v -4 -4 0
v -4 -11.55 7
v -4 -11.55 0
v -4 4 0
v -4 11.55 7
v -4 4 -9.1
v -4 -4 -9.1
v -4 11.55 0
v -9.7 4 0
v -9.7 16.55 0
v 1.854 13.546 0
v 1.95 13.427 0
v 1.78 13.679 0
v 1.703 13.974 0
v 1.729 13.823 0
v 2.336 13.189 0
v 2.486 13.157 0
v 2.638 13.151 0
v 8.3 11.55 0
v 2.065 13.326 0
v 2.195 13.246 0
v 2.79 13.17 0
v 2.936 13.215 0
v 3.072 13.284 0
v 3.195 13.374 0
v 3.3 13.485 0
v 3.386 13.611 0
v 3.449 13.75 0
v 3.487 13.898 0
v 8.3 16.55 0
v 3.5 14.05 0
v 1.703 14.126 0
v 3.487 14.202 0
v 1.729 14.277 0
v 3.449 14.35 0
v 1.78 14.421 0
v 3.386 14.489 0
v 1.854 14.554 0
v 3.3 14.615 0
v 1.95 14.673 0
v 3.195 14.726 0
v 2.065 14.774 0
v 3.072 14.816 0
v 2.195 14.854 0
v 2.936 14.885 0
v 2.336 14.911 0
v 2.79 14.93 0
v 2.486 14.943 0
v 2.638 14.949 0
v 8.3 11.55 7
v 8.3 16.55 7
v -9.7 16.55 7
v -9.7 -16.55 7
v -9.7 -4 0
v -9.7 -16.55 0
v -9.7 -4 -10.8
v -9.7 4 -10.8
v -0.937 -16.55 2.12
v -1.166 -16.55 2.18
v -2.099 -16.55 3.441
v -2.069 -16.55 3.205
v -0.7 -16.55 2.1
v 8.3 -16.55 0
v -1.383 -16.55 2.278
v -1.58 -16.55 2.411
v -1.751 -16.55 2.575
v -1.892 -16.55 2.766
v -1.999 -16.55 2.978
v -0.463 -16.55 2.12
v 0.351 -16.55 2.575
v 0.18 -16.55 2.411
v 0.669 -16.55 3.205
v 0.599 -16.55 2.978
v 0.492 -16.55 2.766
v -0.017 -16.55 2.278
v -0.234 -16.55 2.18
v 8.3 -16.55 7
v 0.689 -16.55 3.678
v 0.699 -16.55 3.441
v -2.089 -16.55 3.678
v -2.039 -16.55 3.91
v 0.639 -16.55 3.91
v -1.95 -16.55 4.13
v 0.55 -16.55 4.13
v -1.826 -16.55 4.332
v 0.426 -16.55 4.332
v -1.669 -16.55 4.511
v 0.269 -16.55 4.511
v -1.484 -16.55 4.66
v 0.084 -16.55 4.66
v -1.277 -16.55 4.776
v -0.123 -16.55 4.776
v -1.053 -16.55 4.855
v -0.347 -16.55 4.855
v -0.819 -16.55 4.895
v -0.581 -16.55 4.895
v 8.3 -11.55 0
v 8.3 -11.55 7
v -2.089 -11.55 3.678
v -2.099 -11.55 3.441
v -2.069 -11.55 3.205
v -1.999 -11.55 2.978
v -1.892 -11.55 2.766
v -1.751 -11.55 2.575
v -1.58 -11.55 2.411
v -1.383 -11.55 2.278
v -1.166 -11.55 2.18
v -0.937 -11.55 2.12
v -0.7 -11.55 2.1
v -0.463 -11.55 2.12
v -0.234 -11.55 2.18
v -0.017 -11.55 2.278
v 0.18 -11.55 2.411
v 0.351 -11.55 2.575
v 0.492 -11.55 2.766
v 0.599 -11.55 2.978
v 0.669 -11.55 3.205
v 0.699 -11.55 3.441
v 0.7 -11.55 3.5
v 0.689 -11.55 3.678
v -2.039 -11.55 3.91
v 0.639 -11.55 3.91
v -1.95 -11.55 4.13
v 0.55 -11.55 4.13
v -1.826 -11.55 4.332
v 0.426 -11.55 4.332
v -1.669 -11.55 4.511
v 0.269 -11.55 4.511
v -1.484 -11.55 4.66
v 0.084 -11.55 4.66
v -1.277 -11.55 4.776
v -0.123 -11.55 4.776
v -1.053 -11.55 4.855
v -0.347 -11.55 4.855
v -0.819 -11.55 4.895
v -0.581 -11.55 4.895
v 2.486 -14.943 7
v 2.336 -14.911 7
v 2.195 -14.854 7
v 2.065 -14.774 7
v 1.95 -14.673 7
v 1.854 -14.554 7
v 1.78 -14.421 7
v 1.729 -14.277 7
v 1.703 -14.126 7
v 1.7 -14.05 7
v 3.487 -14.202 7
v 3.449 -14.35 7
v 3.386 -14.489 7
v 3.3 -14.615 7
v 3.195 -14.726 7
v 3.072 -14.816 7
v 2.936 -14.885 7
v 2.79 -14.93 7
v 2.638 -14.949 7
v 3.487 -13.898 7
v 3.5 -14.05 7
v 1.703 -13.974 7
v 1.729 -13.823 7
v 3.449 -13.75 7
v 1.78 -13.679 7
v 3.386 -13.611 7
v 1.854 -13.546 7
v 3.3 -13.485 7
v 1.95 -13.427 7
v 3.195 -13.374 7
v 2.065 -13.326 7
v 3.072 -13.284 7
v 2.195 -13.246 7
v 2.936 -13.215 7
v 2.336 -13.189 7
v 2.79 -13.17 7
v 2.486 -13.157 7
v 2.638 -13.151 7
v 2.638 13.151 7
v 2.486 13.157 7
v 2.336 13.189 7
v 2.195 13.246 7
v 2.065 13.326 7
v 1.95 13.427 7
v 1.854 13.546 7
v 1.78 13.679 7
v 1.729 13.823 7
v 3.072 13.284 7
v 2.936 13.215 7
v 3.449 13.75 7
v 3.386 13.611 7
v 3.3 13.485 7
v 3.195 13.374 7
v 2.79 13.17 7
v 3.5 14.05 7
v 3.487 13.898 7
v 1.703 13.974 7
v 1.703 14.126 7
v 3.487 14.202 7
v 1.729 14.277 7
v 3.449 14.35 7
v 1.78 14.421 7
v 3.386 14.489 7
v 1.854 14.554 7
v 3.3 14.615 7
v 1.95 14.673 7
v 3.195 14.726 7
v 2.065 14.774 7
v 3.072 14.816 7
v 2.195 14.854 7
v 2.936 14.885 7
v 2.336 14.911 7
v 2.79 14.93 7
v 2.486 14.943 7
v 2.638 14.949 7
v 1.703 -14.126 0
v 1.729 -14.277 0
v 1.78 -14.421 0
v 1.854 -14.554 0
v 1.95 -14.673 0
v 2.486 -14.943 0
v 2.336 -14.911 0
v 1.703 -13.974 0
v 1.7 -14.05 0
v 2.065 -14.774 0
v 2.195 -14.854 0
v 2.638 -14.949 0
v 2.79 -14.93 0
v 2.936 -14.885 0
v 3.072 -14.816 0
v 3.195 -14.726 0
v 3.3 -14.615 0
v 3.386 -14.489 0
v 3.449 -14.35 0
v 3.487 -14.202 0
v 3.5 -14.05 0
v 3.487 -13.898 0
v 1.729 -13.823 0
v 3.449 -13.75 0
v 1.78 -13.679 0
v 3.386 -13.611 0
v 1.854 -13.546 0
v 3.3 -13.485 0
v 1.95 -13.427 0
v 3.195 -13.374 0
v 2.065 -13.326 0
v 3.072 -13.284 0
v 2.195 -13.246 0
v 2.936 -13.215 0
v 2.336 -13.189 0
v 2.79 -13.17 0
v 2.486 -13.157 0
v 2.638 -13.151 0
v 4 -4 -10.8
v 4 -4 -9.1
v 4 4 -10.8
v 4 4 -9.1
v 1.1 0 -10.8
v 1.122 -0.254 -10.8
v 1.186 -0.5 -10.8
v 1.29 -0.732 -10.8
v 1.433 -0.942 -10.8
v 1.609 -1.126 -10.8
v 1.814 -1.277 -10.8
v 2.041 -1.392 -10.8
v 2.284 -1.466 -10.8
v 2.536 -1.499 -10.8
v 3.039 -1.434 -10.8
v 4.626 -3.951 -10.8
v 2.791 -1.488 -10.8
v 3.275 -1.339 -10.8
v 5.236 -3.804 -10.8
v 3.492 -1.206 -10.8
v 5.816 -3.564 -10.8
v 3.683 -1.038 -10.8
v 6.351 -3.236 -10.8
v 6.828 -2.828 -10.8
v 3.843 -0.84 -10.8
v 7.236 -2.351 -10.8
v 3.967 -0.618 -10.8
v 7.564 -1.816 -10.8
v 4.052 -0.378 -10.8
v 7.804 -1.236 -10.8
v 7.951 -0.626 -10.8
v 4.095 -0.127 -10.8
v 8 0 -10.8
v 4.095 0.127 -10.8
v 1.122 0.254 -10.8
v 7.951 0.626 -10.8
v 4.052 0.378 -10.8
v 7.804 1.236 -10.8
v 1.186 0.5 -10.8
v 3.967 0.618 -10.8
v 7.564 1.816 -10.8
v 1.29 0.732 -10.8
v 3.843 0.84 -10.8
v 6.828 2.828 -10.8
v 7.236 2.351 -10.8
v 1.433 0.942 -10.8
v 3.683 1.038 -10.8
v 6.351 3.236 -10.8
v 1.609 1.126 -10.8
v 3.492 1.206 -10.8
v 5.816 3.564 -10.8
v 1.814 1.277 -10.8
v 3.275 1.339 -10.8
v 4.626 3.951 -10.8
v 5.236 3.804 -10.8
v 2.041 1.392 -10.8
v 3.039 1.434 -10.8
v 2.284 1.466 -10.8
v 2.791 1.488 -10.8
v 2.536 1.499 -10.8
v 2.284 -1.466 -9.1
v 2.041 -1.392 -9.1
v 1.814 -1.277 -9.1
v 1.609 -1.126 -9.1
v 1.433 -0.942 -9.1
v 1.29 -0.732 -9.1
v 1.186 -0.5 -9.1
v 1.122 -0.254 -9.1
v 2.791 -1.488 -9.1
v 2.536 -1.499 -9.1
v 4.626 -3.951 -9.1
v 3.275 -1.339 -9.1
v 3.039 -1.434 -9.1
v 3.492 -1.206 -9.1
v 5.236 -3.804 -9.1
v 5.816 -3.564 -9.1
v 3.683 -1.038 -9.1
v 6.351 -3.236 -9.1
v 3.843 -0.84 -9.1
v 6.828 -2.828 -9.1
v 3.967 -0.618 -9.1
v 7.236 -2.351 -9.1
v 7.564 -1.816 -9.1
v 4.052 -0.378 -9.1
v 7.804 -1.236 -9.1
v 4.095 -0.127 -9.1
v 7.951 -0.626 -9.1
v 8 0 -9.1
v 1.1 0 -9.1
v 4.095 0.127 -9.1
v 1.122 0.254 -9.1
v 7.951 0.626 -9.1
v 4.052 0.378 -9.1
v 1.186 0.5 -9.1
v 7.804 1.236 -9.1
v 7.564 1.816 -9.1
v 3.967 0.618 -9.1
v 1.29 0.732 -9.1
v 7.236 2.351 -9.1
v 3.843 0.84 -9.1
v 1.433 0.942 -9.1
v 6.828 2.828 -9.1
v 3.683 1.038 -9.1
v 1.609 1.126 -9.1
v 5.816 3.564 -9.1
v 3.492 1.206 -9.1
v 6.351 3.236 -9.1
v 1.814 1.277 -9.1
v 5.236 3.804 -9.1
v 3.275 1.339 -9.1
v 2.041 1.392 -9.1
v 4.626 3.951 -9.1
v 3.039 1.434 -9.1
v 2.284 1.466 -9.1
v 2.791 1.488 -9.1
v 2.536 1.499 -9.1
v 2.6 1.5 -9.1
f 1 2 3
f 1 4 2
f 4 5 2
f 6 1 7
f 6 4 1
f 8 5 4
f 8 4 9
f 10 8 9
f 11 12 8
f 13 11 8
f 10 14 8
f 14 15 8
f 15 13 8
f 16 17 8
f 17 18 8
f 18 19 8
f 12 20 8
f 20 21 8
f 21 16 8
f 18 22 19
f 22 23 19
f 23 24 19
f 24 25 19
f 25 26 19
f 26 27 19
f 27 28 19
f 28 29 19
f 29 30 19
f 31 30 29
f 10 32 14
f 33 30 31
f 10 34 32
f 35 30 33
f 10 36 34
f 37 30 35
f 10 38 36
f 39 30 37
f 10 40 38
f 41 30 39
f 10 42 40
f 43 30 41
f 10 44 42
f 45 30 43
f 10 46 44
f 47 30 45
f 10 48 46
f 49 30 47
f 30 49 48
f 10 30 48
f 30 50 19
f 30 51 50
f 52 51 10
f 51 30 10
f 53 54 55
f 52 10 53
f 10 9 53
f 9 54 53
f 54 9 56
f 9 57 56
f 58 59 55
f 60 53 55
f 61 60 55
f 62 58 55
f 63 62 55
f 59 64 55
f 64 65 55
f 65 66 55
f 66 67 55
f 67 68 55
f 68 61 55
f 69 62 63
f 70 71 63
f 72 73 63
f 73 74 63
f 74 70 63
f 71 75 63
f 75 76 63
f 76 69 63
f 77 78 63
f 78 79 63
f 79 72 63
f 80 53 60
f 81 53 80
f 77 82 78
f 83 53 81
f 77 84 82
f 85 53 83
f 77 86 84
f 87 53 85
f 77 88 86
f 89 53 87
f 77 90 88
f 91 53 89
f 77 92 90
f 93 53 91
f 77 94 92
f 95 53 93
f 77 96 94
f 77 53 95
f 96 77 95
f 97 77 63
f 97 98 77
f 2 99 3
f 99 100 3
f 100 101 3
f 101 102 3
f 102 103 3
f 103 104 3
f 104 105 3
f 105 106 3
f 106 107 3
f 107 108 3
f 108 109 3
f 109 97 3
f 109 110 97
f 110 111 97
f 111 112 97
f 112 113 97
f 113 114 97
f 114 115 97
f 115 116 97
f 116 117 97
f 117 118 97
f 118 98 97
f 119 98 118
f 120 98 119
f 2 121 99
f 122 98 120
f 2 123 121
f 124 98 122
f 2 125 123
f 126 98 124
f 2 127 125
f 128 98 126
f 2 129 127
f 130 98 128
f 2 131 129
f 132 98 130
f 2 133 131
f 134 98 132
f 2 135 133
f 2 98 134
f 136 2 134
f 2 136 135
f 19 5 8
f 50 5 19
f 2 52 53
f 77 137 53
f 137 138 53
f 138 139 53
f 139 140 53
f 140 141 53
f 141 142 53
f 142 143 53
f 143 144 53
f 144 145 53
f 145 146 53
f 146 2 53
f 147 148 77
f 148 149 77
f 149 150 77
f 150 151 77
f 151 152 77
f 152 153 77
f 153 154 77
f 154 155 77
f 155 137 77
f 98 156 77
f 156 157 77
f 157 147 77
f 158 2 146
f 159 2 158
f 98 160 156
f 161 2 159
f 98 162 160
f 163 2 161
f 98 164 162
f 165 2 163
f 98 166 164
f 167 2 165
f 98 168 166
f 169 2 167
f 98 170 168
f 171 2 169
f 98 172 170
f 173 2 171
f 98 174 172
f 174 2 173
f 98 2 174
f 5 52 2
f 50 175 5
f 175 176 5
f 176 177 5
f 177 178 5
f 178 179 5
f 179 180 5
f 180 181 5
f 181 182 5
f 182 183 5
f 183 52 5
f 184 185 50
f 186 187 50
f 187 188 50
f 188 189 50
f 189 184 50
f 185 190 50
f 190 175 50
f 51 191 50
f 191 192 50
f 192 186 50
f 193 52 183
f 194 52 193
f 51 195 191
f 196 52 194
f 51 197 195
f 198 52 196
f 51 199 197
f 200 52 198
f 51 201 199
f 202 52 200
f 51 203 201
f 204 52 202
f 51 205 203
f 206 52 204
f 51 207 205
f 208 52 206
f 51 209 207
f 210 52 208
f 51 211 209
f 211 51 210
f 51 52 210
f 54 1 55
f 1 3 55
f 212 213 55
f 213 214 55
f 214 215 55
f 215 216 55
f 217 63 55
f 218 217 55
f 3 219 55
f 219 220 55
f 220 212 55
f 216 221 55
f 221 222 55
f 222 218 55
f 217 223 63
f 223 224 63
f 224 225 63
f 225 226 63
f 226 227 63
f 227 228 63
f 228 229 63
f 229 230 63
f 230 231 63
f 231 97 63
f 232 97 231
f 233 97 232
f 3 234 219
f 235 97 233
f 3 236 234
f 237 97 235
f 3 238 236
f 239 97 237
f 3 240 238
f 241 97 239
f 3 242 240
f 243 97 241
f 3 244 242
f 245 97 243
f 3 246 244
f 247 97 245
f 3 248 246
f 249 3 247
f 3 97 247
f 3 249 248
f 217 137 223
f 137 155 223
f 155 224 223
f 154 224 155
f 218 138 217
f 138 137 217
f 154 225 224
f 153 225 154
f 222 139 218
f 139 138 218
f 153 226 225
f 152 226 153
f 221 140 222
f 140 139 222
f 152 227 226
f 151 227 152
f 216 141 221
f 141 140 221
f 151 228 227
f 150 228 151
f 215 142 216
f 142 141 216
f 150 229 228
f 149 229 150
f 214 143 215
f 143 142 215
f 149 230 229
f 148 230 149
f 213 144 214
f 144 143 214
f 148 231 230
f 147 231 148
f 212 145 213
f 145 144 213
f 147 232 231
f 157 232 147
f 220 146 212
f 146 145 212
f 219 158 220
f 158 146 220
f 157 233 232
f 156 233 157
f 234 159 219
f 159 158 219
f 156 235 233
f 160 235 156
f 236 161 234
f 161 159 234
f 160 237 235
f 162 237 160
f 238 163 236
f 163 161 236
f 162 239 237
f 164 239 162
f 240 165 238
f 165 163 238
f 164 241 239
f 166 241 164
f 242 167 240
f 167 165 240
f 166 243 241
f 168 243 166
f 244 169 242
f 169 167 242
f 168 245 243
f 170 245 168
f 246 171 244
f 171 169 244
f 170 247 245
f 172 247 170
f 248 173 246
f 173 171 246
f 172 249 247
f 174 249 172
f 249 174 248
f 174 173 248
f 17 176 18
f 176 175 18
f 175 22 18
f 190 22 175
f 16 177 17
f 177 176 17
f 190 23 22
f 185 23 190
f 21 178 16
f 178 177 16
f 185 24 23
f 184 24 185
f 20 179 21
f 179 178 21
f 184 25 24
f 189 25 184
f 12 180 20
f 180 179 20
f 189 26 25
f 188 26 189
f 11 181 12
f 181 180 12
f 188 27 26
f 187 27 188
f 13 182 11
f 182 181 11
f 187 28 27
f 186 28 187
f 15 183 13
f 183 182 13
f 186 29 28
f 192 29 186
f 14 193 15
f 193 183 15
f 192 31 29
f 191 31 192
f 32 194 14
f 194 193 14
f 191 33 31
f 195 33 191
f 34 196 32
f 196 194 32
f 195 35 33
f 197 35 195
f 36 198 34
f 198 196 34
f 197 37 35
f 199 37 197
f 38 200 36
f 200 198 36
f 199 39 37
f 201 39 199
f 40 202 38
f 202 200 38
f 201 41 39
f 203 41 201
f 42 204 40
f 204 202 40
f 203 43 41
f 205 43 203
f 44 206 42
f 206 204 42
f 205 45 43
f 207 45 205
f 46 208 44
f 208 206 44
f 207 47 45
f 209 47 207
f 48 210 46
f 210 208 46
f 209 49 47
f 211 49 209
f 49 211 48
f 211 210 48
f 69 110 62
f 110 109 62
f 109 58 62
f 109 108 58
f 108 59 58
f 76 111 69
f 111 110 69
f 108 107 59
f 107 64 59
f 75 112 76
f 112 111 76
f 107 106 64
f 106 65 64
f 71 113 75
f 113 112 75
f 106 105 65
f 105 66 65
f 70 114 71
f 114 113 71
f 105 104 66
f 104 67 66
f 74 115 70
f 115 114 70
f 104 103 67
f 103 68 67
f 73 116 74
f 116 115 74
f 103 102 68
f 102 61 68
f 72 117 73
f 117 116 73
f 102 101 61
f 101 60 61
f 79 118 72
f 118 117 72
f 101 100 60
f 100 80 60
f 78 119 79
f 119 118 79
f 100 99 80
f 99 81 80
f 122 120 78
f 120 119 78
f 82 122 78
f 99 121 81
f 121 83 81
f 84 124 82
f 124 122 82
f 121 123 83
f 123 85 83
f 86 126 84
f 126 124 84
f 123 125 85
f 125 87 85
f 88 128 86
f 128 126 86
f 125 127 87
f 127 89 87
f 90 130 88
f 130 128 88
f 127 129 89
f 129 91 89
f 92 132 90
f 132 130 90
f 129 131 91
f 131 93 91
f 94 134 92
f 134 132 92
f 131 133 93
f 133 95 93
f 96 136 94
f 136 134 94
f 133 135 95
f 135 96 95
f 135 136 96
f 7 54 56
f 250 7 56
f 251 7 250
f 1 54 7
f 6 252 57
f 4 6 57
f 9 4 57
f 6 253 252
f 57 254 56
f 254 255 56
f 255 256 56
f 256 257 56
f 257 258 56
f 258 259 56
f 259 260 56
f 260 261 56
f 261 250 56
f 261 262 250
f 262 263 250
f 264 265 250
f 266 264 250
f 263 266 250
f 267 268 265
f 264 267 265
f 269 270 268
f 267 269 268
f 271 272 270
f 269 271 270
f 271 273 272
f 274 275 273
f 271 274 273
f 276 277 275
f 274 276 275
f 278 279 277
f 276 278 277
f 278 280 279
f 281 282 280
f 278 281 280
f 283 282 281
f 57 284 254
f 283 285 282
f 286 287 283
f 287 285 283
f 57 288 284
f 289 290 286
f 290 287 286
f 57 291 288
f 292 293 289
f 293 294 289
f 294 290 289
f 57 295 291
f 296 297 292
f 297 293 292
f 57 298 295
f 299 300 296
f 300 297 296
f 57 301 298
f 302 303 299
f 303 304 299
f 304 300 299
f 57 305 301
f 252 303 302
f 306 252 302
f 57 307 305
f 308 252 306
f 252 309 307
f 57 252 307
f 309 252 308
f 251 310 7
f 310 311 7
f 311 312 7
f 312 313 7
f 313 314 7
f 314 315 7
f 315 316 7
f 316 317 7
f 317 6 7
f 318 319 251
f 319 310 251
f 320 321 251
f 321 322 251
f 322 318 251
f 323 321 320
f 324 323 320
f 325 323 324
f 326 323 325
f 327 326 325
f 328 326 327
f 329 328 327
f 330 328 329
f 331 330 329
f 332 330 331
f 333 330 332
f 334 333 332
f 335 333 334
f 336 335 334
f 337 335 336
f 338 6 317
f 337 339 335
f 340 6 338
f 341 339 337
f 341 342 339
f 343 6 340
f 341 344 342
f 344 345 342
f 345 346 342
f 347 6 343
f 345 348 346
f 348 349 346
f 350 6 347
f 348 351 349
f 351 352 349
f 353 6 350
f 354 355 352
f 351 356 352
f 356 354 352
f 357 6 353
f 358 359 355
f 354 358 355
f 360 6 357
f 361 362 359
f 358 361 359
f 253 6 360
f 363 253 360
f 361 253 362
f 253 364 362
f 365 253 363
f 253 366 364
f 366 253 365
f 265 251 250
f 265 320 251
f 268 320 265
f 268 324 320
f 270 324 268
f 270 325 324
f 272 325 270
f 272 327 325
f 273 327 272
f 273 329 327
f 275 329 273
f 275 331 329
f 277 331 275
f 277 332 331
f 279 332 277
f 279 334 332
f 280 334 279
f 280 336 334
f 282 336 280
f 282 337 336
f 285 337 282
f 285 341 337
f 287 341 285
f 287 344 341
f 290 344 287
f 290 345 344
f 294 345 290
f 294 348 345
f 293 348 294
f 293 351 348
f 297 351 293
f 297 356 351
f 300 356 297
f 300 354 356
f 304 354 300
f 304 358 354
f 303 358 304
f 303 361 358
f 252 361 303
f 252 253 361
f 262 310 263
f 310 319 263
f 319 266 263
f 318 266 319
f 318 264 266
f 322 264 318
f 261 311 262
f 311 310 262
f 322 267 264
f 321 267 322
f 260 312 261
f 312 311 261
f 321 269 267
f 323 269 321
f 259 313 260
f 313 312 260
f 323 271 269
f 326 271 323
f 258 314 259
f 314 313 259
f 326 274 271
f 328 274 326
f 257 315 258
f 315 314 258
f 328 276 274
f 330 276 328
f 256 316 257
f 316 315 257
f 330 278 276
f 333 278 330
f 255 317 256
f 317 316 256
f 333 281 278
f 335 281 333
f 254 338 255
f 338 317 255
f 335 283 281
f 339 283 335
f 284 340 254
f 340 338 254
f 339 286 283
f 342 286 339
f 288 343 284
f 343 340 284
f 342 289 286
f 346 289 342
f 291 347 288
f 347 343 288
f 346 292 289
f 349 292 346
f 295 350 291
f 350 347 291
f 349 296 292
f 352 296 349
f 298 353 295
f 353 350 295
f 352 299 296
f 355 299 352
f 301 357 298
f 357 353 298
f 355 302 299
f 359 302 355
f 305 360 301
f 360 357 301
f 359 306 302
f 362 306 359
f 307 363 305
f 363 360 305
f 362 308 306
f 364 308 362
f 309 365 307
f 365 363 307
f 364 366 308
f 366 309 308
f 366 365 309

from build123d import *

# Parameters (mm, degrees)
ESTRUSIONE_ESTRUSIONE1_DEPTH = 7
SCHIZZO2_R                   = 0.9
TAGLIO_ESTRUSIONE1_DEPTH     = 21.420394218
TAGLIO_ESTRUSIONE2_REACH     = 37.195
SCHIZZO3_R                   = 1.4
SCHIZZO4_W                   = 5.7
SCHIZZO4_H                   = 8
ESTRUSIONE_ESTRUSIONE2_DEPTH = 10.8
SCHIZZO5_W                   = 1.7
SCHIZZO5_H                   = 8
ESTRUSIONE_ESTRUSIONE3_DEPTH = 12
RACCORDO1_R                  = 4
TAGLIO_ESTRUSIONE3_REACH     = 28.169
SCHIZZO6_R                   = 1.5


with BuildPart() as part:
    # Schizzo1 → Estrusione-Estrusione1 (new body)
    with BuildSketch(Plane.XY):
        Polygon((8.3, 11.55), (-4, 11.55), (-4, -11.55), (8.3, -11.55), (8.3, -16.55), (-9.7, -16.55), (-9.7, 16.55), (8.3, 16.55), align=None)
    extrude(amount=ESTRUSIONE_ESTRUSIONE1_DEPTH)

    # Schizzo2 → Taglio-Estrusione1 (cut, through all)
    with BuildSketch(Plane.XY.offset(7)):
        with Locations((2.6, 14.05)):
            Circle(SCHIZZO2_R)
        with Locations(Location((2.6, -14.05, 0), (0, 0, 180))):
            Circle(SCHIZZO2_R)
    extrude(amount=-TAGLIO_ESTRUSIONE1_DEPTH, mode=Mode.SUBTRACT)

    # Schizzo3 → Taglio-Estrusione2 (cut, up to next)
    with BuildSketch(Plane.XZ.offset(16.55), mode=Mode.PRIVATE) as taglio_estrusione2_sk1:
        with Locations(Location((-0.7, 3.5, 0), (0, 0, 270))):
            Circle(SCHIZZO3_R)
    taglio_estrusione2_tool1 = extrude(taglio_estrusione2_sk1.sketch, amount=-TAGLIO_ESTRUSIONE2_REACH, mode=Mode.PRIVATE) & part.part
    add(taglio_estrusione2_tool1.solids().sort_by_distance((-0.7, -16.55, 3.5))[0], mode=Mode.SUBTRACT)

    # Schizzo4 → Estrusione-Estrusione2 (add)
    with BuildSketch(Plane(origin=(0, 0, 0), x_dir=(-1, 0, 0), z_dir=(0, 0, -1))):
        with Locations((6.85, 0)):
            Rectangle(SCHIZZO4_W, SCHIZZO4_H)
    extrude(amount=ESTRUSIONE_ESTRUSIONE2_DEPTH)

    # Schizzo5 → Estrusione-Estrusione3 (add)
    with BuildSketch(Plane(origin=(-4, 0, 0), x_dir=(0, 0, -1), z_dir=(1, 0, 0))):
        with Locations((9.95, 0)):
            Rectangle(SCHIZZO5_W, SCHIZZO5_H)
    extrude(amount=ESTRUSIONE_ESTRUSIONE3_DEPTH)

    # Raccordo1
    raccordo1_edges = [part.edges().sort_by_distance(p)[0] for p in [
        (8, 4, -9.95),
        (8, -4, -9.95),
    ]]
    fillet(raccordo1_edges, radius=RACCORDO1_R - 0.0001)  # a hair under: the kernel refuses the full size

    # Schizzo6 → Taglio-Estrusione3 (cut, up to next)
    with BuildSketch(Plane(origin=(0, 0, -10.8), x_dir=(-1, 0, 0), z_dir=(0, 0, -1)), mode=Mode.PRIVATE) as taglio_estrusione3_sk1:
        with Locations((-2.6, 0)):
            Circle(SCHIZZO6_R)
    taglio_estrusione3_tool1 = extrude(taglio_estrusione3_sk1.sketch, amount=-TAGLIO_ESTRUSIONE3_REACH, mode=Mode.PRIVATE) & part.part
    add(taglio_estrusione3_tool1.solids().sort_by_distance((2.6, 0, -10.8))[0], mode=Mode.SUBTRACT)


solid = part.part
